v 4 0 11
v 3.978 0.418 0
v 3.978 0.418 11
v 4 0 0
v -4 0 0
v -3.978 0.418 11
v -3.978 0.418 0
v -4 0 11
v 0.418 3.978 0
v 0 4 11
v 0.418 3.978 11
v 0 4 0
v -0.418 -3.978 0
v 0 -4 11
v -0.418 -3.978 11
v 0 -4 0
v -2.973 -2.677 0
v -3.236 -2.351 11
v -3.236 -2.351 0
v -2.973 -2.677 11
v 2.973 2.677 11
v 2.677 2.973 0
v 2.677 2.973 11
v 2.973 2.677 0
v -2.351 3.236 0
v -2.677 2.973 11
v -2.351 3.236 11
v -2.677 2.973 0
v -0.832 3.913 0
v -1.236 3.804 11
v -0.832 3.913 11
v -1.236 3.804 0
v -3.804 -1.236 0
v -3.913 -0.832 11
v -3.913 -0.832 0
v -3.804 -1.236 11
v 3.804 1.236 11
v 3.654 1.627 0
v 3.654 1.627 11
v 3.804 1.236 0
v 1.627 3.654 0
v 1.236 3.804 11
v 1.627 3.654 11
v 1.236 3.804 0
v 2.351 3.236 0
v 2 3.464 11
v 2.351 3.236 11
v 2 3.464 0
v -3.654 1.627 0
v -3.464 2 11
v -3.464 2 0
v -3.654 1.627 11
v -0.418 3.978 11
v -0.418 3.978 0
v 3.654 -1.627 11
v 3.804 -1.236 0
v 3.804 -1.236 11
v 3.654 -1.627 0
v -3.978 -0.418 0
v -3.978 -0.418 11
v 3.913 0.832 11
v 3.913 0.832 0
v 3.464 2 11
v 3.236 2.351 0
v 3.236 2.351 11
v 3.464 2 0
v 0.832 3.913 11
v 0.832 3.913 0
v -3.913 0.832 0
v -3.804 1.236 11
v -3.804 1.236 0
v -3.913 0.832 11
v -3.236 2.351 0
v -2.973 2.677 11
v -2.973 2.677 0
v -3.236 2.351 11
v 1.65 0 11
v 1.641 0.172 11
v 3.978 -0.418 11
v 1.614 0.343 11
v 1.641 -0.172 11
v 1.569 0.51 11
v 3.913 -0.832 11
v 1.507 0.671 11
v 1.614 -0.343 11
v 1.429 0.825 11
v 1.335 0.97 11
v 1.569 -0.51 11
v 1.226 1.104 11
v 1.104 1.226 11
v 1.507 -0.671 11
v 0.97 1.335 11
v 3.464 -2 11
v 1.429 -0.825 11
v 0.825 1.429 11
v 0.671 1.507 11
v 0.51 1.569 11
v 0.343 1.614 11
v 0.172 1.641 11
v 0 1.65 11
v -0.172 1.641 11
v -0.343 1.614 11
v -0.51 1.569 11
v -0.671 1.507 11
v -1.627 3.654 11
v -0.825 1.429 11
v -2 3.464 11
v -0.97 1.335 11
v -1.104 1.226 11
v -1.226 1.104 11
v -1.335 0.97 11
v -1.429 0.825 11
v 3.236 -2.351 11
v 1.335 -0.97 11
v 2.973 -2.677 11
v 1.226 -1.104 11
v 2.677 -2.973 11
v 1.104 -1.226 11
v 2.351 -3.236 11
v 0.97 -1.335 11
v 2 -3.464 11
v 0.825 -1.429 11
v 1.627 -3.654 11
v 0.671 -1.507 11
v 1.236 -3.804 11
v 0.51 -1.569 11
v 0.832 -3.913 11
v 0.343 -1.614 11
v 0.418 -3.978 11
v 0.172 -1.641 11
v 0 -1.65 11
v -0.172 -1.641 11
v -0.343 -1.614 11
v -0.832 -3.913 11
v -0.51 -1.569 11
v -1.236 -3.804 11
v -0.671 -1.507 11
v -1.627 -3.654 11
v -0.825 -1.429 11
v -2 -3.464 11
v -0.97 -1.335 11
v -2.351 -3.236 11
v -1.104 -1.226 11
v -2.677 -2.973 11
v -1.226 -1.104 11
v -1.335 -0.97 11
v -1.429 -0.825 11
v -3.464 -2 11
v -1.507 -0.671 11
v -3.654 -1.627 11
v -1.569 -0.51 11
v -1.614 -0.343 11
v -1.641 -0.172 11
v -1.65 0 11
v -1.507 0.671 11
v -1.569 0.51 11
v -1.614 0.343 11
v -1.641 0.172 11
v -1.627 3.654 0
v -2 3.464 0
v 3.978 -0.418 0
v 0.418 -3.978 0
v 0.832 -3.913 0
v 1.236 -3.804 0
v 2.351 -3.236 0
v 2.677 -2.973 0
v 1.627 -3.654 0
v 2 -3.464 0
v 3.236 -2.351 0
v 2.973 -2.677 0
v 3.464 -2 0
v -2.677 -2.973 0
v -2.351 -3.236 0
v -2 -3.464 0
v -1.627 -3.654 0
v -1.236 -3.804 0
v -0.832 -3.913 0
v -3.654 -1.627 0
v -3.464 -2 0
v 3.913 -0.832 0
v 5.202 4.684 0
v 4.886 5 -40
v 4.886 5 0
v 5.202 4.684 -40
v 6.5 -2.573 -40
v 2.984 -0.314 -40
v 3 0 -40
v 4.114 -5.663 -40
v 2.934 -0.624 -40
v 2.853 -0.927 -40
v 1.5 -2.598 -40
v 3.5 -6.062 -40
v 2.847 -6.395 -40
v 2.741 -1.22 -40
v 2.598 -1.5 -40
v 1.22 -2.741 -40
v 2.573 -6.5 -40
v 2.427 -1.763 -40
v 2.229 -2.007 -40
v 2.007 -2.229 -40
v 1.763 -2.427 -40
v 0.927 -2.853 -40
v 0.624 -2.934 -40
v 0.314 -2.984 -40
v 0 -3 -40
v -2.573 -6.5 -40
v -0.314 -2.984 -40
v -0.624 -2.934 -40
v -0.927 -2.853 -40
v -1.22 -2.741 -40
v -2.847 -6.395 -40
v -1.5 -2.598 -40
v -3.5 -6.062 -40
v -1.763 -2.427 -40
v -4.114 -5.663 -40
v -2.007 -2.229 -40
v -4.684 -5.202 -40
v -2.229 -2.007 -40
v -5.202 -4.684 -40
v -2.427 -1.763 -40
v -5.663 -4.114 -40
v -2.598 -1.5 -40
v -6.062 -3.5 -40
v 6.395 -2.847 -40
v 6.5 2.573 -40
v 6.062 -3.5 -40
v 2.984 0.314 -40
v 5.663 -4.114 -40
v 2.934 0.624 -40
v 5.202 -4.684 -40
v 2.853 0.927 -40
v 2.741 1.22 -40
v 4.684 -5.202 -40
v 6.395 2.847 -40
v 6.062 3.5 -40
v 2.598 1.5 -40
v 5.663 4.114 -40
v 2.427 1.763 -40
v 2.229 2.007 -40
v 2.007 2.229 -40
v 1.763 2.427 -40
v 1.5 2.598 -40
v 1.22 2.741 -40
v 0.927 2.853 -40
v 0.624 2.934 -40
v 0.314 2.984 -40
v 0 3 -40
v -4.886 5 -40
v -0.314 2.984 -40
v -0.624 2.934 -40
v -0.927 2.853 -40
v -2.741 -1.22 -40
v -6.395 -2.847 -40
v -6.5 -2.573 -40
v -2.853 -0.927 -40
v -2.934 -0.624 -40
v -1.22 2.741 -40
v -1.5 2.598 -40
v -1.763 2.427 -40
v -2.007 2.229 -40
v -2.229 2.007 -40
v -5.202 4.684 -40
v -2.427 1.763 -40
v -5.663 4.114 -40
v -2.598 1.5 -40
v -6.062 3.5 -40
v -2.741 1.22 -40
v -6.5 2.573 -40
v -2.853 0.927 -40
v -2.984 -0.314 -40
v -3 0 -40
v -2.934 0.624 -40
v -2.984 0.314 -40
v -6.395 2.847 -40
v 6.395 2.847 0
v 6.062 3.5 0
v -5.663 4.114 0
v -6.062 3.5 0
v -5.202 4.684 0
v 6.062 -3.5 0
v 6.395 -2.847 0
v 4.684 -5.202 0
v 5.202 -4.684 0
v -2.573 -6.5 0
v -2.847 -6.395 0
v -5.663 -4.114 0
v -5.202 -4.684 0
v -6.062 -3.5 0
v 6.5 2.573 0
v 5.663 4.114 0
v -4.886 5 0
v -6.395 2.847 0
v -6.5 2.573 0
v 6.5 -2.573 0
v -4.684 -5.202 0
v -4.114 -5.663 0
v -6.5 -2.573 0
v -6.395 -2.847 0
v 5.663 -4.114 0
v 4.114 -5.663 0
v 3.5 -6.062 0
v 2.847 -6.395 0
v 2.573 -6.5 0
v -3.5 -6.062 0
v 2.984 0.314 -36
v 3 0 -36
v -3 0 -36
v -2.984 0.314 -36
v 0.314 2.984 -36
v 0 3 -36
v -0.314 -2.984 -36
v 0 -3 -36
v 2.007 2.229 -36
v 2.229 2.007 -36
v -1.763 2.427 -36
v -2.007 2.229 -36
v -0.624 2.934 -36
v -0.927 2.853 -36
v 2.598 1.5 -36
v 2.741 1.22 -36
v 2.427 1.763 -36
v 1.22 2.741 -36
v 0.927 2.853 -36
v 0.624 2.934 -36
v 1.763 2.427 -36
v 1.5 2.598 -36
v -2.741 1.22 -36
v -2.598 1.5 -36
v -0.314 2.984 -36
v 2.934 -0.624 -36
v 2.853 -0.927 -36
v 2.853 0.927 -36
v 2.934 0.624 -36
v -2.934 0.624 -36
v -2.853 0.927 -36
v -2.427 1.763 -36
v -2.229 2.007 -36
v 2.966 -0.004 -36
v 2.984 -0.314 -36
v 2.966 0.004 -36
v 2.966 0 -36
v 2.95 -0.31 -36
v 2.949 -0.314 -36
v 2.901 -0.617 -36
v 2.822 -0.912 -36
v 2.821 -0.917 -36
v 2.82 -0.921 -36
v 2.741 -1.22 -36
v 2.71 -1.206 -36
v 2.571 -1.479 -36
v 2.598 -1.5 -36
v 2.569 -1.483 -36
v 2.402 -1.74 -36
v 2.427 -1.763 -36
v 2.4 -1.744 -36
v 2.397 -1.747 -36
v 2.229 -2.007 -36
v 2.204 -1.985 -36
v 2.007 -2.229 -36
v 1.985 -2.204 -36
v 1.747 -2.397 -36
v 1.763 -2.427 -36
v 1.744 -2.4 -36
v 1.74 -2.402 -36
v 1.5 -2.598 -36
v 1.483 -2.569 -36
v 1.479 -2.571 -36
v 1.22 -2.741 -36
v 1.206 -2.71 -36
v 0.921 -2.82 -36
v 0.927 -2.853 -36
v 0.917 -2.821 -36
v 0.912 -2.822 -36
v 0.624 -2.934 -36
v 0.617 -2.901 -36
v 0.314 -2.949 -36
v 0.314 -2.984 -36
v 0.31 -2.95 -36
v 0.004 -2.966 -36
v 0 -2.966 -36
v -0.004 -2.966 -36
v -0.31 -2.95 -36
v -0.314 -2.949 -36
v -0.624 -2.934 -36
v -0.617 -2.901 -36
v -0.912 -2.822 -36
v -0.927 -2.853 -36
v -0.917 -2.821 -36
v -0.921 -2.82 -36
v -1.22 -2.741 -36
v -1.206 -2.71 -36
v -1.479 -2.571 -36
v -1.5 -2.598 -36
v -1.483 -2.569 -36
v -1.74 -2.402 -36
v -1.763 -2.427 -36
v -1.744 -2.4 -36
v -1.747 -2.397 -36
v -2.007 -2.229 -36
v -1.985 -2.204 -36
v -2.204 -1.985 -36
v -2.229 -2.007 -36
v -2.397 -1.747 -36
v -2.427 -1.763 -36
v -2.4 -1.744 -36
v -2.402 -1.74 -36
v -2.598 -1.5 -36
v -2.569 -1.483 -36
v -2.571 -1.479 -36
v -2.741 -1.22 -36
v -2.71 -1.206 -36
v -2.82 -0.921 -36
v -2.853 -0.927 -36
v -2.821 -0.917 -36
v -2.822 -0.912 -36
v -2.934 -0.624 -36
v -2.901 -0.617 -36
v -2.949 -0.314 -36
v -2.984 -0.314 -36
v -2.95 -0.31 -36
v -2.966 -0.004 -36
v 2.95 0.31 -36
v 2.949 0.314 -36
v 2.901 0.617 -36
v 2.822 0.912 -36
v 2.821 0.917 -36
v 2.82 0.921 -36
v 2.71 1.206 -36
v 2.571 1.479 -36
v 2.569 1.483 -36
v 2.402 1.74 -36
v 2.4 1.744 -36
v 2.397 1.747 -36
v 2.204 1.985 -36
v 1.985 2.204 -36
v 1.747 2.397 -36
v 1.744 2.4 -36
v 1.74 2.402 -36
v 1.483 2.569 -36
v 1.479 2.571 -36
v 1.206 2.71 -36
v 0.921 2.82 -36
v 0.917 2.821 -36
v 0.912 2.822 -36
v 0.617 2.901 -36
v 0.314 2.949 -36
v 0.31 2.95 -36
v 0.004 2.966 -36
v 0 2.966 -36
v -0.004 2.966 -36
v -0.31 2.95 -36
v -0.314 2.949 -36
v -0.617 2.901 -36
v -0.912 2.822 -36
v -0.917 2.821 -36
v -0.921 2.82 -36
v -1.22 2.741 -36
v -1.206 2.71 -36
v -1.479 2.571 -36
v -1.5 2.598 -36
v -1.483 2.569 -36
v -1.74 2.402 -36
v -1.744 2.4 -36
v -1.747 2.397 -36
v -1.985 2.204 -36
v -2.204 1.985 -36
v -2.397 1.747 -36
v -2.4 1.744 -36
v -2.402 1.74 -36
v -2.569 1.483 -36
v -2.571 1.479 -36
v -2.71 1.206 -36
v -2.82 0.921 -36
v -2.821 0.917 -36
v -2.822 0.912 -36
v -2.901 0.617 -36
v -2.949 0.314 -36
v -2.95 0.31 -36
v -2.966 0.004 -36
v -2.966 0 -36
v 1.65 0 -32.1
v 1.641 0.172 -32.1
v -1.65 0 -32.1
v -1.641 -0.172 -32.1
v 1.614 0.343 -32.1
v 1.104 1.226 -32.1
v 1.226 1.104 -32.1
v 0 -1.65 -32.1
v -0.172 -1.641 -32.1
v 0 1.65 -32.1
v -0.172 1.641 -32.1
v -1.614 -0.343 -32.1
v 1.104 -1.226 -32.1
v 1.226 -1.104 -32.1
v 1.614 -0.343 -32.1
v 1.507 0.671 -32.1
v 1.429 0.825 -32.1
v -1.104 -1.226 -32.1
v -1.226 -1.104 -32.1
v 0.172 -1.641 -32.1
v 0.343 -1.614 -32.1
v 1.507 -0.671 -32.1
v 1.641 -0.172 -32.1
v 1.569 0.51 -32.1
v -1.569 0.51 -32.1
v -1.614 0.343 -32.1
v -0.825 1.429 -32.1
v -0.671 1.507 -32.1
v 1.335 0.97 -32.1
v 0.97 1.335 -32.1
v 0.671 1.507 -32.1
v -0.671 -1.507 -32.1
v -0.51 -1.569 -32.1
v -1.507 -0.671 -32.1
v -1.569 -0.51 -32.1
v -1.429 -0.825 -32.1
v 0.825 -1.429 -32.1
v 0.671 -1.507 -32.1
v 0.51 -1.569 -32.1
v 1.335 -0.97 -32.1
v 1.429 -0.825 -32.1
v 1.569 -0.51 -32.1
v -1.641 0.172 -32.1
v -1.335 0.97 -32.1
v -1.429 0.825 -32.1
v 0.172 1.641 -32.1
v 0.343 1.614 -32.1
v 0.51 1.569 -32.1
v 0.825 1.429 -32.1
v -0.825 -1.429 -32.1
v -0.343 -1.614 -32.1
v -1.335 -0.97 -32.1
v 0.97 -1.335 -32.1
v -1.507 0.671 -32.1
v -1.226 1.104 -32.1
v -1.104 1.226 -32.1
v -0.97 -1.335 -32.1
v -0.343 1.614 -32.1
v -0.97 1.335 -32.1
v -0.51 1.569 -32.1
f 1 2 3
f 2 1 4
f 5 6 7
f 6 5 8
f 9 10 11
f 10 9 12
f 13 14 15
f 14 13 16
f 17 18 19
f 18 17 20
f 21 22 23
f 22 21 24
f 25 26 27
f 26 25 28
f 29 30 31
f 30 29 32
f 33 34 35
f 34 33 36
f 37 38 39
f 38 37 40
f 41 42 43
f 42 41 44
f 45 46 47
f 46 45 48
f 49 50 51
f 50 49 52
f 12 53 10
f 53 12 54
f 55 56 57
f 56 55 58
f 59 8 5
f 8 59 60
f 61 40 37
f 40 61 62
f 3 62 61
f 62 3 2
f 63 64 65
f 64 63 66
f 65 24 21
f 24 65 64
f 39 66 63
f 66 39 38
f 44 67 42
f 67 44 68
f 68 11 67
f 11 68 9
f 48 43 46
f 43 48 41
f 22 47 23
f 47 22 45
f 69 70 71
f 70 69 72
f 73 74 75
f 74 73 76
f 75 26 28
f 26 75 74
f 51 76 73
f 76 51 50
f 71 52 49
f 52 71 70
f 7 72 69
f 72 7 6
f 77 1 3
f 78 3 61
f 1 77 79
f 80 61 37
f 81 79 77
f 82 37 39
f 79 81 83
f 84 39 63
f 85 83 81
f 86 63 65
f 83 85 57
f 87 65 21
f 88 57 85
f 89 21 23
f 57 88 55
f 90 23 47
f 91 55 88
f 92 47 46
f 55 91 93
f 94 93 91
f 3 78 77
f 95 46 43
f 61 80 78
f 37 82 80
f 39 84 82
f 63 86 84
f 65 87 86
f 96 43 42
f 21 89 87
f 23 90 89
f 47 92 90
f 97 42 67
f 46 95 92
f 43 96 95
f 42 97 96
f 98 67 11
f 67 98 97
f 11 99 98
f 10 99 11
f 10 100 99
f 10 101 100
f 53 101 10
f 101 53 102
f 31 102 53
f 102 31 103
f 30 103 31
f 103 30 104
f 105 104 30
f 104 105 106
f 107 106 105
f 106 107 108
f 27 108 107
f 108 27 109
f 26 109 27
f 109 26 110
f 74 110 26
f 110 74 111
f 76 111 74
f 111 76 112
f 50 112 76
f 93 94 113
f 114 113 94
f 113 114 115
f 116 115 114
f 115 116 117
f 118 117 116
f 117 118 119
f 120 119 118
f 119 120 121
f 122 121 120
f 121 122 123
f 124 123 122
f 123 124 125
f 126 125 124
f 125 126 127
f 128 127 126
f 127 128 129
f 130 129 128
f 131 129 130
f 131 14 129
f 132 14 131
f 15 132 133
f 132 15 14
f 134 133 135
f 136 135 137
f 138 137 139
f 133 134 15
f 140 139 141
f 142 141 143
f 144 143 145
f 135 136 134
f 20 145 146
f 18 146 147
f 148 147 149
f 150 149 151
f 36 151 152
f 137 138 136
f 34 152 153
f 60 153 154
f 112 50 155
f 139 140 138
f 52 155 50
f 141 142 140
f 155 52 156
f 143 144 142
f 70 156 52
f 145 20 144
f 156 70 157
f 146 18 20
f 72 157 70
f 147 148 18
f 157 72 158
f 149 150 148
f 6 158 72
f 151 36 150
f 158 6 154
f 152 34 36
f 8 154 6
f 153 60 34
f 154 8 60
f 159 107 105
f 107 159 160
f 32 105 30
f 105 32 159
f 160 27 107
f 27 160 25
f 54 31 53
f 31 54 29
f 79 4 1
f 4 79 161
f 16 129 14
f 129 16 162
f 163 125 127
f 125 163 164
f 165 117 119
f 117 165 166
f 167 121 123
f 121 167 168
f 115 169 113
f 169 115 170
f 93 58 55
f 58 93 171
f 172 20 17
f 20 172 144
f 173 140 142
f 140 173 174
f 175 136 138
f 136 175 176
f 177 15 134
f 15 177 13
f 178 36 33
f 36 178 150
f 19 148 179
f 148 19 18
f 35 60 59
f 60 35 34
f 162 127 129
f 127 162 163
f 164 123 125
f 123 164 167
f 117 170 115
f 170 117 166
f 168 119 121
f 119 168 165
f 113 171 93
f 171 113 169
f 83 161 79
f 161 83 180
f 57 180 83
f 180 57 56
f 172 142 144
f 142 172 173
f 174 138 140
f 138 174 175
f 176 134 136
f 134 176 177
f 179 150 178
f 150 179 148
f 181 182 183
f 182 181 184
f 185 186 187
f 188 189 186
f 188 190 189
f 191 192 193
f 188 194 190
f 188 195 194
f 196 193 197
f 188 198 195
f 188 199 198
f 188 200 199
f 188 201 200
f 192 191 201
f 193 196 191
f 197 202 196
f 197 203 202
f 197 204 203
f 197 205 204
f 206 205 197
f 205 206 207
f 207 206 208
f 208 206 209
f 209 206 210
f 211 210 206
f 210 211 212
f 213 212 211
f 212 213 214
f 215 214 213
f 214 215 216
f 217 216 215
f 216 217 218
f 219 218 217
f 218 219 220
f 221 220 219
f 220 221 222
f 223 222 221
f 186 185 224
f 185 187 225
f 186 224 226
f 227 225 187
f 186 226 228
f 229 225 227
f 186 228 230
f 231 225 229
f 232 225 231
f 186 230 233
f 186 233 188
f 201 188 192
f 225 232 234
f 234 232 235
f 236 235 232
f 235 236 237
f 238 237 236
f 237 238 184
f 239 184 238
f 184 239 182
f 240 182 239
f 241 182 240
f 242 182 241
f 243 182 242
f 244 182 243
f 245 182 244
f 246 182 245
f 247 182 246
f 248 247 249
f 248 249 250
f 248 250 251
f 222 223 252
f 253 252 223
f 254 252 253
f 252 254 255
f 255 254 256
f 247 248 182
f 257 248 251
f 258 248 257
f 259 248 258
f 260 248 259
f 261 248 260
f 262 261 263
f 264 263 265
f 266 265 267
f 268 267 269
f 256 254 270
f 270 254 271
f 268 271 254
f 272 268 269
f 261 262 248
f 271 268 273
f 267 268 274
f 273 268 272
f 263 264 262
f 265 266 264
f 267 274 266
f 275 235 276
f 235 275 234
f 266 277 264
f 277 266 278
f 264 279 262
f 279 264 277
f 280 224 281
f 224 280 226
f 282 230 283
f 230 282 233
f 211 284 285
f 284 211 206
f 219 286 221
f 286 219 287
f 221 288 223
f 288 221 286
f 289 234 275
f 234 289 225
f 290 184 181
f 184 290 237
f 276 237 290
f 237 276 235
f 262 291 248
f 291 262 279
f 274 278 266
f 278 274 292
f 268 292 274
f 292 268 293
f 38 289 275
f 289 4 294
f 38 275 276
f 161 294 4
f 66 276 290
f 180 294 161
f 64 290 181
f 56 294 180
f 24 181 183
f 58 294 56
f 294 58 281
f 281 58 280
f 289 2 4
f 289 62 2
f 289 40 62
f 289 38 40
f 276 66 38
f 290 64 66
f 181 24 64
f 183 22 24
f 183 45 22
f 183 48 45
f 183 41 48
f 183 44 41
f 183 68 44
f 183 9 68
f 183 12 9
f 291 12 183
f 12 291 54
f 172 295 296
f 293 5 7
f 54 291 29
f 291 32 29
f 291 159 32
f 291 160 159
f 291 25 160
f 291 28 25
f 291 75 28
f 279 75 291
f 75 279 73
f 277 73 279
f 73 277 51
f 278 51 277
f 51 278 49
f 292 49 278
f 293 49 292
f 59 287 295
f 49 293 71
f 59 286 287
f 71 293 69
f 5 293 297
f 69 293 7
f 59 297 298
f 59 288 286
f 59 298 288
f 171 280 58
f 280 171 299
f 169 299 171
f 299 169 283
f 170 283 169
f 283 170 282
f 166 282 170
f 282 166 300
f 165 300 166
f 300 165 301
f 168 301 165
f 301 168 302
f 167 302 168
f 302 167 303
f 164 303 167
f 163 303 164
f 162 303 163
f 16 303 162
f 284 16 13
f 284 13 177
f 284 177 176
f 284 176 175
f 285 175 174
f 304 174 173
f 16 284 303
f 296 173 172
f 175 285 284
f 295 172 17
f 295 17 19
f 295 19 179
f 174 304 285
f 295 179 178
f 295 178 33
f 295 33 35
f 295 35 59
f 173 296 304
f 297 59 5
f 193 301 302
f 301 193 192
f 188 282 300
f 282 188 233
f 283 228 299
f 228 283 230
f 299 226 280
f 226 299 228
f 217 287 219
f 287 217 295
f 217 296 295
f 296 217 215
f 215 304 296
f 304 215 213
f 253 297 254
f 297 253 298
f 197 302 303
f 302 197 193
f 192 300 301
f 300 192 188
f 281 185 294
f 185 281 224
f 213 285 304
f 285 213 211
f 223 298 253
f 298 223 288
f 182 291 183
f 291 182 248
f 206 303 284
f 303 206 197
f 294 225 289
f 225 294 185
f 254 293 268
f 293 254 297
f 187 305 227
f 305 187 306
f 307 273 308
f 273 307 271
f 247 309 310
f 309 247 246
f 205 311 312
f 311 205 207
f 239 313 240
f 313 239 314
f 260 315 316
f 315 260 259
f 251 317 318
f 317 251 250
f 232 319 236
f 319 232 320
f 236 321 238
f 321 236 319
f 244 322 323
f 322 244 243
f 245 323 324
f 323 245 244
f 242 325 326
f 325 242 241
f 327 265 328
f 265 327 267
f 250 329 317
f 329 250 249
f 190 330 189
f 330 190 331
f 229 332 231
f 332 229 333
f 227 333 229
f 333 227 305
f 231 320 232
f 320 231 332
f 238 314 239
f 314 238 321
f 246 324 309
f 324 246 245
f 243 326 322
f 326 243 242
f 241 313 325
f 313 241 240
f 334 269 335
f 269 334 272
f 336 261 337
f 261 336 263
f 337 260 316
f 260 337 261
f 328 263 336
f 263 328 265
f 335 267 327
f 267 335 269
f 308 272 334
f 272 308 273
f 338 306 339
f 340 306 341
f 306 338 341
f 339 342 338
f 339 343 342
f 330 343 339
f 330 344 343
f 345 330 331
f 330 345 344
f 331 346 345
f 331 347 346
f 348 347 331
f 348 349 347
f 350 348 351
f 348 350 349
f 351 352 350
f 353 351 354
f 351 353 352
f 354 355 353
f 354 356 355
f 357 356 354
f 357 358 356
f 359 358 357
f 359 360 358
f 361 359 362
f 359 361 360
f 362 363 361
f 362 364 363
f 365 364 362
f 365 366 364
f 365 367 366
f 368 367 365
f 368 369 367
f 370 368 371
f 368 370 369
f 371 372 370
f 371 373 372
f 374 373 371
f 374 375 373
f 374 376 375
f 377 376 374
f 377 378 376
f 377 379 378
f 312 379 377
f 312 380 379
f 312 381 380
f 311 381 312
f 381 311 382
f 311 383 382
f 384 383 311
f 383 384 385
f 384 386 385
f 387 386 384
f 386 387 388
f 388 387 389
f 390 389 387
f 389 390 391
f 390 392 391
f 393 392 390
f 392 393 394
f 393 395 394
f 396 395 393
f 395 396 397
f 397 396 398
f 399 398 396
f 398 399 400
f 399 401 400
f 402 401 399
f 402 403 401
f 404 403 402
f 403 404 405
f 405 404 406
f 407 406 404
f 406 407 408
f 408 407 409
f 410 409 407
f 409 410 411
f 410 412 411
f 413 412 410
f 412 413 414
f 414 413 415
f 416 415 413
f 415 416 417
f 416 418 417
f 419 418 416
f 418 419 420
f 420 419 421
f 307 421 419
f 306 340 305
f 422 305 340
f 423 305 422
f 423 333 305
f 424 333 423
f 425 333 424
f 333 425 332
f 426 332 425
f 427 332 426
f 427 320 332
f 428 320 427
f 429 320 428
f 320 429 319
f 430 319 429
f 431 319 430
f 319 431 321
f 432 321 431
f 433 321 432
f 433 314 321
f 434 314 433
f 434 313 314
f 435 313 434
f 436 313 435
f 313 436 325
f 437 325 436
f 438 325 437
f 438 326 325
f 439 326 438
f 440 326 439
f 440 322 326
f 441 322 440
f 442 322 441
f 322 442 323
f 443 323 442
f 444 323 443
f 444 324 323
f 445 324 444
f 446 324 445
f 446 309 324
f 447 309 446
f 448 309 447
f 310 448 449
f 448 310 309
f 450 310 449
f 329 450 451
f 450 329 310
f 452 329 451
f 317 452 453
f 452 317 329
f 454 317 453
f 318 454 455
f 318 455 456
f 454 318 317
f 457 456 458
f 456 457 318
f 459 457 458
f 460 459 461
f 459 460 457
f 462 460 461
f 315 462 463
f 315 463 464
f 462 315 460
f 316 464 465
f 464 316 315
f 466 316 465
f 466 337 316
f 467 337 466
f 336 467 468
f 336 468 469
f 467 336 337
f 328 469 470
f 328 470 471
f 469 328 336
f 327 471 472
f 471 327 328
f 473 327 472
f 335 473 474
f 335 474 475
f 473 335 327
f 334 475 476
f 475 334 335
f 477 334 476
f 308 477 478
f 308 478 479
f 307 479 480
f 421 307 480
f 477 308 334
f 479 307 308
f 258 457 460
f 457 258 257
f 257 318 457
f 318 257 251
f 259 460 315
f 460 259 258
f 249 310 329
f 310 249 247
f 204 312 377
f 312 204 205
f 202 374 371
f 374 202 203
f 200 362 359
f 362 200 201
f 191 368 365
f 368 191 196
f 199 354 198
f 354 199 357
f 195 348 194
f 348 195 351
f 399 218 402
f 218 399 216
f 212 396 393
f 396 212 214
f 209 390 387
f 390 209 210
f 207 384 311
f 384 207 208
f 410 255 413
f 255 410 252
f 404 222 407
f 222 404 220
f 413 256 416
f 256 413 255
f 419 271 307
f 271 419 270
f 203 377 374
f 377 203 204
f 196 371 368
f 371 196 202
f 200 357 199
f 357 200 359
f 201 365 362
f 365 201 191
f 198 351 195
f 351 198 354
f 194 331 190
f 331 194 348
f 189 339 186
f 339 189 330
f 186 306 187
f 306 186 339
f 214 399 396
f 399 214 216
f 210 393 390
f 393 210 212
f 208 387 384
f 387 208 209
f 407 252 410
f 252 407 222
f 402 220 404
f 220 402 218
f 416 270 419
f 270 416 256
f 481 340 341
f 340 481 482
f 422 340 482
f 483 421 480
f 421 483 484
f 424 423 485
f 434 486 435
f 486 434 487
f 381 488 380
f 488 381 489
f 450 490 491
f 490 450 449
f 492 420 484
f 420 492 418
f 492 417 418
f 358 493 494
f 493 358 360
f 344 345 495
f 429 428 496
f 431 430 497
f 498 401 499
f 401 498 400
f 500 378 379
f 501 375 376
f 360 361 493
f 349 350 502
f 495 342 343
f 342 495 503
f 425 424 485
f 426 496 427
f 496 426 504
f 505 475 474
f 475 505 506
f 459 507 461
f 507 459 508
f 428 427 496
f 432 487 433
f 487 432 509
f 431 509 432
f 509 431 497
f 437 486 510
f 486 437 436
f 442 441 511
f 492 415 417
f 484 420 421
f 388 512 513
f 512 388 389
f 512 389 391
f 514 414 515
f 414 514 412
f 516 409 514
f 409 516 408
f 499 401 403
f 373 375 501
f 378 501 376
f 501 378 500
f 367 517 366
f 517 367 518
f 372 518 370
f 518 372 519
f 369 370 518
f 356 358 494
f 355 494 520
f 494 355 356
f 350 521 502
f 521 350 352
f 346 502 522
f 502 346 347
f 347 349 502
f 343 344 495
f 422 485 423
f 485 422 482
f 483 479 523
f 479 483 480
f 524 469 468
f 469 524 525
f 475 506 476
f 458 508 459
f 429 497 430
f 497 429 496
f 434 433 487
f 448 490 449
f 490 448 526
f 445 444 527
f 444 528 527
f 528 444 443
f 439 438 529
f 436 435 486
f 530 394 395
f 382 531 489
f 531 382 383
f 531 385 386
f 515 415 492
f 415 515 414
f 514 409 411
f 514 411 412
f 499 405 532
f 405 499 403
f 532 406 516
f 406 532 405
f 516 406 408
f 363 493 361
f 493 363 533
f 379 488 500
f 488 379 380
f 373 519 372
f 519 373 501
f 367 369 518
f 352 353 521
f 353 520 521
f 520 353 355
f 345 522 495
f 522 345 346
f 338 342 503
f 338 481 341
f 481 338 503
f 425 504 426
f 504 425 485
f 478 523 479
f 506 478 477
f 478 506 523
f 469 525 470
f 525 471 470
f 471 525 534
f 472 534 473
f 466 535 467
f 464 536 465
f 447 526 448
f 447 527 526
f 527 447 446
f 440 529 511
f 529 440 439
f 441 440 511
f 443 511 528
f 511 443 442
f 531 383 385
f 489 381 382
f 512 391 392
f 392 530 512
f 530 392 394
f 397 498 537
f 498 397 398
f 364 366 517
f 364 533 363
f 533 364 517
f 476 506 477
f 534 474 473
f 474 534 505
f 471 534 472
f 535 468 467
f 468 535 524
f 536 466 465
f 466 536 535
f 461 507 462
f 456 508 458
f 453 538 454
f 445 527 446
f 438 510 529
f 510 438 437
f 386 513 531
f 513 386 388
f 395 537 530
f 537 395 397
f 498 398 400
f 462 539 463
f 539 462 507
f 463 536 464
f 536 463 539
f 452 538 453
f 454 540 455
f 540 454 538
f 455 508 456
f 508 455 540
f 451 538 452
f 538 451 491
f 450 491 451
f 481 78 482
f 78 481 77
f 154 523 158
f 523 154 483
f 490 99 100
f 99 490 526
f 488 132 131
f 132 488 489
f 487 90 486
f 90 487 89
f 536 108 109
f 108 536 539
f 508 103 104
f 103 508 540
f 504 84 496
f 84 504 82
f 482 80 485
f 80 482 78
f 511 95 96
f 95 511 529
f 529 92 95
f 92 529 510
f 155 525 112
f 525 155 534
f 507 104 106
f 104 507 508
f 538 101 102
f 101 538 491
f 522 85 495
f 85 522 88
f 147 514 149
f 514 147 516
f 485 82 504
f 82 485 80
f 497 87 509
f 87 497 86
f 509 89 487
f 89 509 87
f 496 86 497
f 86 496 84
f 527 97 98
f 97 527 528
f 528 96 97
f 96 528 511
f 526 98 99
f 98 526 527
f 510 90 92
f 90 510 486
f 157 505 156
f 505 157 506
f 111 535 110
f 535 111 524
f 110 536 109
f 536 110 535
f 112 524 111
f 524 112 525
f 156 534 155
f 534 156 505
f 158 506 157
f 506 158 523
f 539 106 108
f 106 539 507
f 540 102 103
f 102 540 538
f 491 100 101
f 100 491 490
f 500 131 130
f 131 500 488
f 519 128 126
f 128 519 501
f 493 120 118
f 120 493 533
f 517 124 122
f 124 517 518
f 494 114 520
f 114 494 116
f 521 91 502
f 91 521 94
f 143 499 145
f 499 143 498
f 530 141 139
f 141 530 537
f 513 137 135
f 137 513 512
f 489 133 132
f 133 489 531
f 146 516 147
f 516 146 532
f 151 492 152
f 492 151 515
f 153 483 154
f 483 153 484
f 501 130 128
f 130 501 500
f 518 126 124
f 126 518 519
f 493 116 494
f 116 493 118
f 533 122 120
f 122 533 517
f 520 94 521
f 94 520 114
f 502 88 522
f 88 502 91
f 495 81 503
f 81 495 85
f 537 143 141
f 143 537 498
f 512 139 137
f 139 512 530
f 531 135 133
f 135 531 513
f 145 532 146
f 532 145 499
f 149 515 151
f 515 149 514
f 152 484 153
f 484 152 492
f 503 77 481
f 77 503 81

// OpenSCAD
/*
Info: 
You can put six of these under/in the motor_mounts in the rod-holes. I printed these with a soft PLA and put a 40mm M3-Screw inside. You need 6 of these.

Improvement: 
- wasn't there before
- shock absorbing standoffs (if printed with soft PLA)
- more space under the printer (there is just usb and power coming out of mine)
- better cooling for motors

TODO:
-
*/

h_rod   = 10;  // height 
d_rod   = 8.0; // diameter
h_stand = 40;  // standoff height
d_stand = 14;  // dia standoff

$fn=60;

module motor_end_standoff()
{
  difference() 
  {
    union() 
    {  
        translate([0,0,+h_rod/2])   cylinder(d=d_rod,  h=h_rod+2,center=true);
        translate([0,0,-h_stand/2]) cylinder(d=d_stand,h=h_stand,center=true);
    }
    w_cube = (d_stand - d_rod);
    // generate flat surfaces on each side
    translate([0,+(d_stand/2+1),  -h_stand/2]) cube([d_stand,w_cube,h_stand+2], center=true);
    translate([0,-(d_stand/2+2.5),-h_stand/2]) cube([d_stand,w_cube,h_stand+2], center=true);
    translate([+(d_stand/2+2.5),0,-h_stand/2]) cube([w_cube,d_stand,h_stand+2], center=true);
    translate([-(d_stand/2+2.5),0,-h_stand/2]) cube([w_cube,d_stand,h_stand+2], center=true);
    
    // make room to insert screws inside the standoff
    translate([0,0,-h_stand])     cylinder(d=6,h=8,center=true);
    translate([0,0,-h_stand+5.9]) cylinder(d1=6,d2=3.3,h=4,center=true);
    translate([0,0,-h_stand/2+h_rod/2]) cylinder(d=3.3,h=h_stand+h_rod+4, center=true);
  }
}

motor_end_standoff();
